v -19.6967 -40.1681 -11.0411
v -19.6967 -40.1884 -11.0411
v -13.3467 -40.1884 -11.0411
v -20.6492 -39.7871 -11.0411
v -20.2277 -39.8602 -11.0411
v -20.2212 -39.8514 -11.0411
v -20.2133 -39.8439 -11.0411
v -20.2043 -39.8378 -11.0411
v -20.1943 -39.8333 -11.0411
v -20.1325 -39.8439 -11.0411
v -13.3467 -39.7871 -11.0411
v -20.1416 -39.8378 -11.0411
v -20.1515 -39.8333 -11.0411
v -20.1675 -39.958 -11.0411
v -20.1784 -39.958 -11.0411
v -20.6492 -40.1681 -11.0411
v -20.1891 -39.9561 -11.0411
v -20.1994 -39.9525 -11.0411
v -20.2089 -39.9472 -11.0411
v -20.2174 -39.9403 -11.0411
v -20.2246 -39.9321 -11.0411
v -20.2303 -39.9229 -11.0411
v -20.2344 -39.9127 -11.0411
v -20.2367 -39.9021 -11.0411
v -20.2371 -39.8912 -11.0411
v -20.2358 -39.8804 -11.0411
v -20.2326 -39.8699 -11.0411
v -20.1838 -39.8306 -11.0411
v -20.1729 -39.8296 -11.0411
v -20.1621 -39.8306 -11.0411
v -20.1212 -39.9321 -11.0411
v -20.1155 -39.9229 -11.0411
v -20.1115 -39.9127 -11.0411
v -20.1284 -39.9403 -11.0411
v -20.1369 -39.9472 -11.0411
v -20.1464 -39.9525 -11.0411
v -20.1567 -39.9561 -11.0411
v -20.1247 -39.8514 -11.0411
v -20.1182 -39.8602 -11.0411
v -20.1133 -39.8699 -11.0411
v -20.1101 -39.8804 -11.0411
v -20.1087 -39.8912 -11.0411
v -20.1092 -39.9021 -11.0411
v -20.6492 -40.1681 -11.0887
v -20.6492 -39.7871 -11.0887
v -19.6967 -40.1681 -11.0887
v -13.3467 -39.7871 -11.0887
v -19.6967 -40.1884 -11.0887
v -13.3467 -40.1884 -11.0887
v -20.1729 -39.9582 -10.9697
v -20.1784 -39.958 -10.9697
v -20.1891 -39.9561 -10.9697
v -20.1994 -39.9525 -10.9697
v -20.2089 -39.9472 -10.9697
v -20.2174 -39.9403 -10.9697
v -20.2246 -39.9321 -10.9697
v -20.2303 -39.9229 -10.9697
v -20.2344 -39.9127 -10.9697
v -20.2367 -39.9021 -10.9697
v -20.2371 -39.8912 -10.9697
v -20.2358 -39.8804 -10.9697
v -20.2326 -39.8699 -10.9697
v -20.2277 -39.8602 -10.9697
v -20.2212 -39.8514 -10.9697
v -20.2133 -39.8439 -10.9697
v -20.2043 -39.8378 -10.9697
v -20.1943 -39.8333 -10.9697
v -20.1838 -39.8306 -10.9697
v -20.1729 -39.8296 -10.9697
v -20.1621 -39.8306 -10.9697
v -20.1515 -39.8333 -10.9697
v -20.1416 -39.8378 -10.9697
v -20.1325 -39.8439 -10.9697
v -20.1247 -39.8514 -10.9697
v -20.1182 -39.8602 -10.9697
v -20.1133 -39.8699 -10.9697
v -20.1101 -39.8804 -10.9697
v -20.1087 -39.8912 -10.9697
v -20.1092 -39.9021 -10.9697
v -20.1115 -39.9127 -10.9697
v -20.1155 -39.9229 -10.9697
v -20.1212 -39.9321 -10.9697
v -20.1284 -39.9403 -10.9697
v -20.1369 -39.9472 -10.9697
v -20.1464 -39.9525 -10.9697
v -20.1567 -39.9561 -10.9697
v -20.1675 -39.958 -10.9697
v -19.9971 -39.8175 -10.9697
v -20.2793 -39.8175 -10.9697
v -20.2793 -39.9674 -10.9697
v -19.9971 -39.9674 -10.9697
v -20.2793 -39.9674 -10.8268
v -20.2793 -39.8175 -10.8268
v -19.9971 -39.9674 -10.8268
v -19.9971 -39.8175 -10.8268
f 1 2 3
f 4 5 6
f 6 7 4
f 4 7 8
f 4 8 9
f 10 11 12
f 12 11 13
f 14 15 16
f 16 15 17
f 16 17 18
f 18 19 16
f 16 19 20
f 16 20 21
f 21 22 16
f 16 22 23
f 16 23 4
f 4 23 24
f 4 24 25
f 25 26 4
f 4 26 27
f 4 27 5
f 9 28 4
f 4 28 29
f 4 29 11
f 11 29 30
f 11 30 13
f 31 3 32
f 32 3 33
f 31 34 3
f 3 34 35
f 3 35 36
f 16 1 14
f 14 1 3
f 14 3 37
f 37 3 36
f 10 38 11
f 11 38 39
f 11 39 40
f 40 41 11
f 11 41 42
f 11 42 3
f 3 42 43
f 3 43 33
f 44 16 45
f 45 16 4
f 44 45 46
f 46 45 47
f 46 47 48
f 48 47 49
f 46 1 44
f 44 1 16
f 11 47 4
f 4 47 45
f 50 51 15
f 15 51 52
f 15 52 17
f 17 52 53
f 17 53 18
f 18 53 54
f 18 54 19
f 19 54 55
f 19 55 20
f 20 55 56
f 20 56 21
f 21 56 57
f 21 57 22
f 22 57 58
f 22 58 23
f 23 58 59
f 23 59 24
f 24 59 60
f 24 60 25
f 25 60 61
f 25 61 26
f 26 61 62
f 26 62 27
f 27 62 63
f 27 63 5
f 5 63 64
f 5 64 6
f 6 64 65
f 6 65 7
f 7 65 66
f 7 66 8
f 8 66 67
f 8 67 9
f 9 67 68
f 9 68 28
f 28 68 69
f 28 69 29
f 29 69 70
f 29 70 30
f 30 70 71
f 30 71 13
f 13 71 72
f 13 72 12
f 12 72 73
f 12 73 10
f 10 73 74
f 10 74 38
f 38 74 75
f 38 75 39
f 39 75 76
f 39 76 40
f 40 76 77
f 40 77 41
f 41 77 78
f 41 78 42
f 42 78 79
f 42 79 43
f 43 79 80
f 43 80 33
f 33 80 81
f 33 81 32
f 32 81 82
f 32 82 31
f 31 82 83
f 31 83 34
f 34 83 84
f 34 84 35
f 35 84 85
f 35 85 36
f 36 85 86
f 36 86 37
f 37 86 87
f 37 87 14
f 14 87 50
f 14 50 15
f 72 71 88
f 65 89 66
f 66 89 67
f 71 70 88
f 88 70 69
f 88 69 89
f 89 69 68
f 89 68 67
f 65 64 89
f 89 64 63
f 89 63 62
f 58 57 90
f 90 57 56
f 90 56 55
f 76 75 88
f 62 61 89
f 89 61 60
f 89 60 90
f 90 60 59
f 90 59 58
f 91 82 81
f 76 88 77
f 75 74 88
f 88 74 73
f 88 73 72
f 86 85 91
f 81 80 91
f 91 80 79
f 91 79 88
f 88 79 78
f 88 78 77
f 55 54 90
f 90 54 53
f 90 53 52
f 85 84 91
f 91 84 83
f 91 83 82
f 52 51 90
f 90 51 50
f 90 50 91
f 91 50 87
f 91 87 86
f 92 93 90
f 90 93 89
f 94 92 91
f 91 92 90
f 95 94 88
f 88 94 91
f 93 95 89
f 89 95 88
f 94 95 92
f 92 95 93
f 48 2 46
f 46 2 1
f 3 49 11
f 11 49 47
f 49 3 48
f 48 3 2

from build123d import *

# Parameters (mm, degrees)
SKETCH2_W           = 254
SKETCH2_H           = 12.7
BOSS_EXTRUDE1_DEPTH = 101.6
SKETCH3_R           = 17.140791438
BOSS_EXTRUDE2_DEPTH = 19.05
SKETCH4_W           = 75.235944222
SKETCH4_H           = 39.955088207
BOSS_EXTRUDE3_DEPTH = 38.1
SCALE2_SCALE        = 0.00375
ROTATE_ANGLE        = 90
SKETCH6_W           = 6.35
SKETCH6_H           = 0.047625
BOSS_EXTRUDE6_DEPTH = 0.40132


with BuildPart() as part:
    # Sketch2 → Boss-Extrude1 (new body)
    with BuildSketch(Plane.XY):
        with Locations((79.130769231, 14.898076923)):
            Rectangle(SKETCH2_W, SKETCH2_H)
    extrude(amount=BOSS_EXTRUDE1_DEPTH)

    # Sketch3 → Boss-Extrude2 (add)
    with BuildSketch(Plane(origin=(0, 21.248076923, 0), x_dir=(1, 0, 0), z_dir=(0, 1, 0))):
        with Locations((79.130769231, -28.483063876)):
            Circle(SKETCH3_R)
    extrude(amount=BOSS_EXTRUDE2_DEPTH)

    # Sketch4 → Boss-Extrude3 (add)
    with BuildSketch(Plane(origin=(0, 40.298076923, 0), x_dir=(1, 0, 0), z_dir=(0, 1, 0))):
        with Locations((88.38546847, -28.088530296)):
            Rectangle(SKETCH4_W, SKETCH4_H)
    extrude(amount=BOSS_EXTRUDE3_DEPTH)


with BuildPart() as part_1:
    # Scale2: scaled about (81.435728249, 26.575729378, 44.290186425)
    add(part.part.scale(SCALE2_SCALE).moved(Location((81.130344268, 26.476070393, 44.124098226))))


with BuildPart() as part_2:
    # rotate: moved
    add(part_1.part.rotate(Axis((0, 33.666927966, 26.550068274), (1, 0, 0)), ROTATE_ANGLE))


with BuildPart() as part_3:
    # Move Body 4 x: moved
    add(part_2.part.moved(Location((-101.6, 0, 0))))


with BuildPart() as part_4:
    # Move Body 2 y: moved
    add(part_3.part.moved(Location((0, -55.88, 0))))


with BuildPart() as part_5:
    # Move Body 2.1z: moved
    add(part_4.part.moved(Location((0, 0, -30.48))))

    # Sketch6 → Boss-Extrude6 (add)
    with BuildSketch(Plane(origin=(0, -39.787101985, 0), x_dir=(1, 0, 0), z_dir=(0, 1, 0))):
        with Locations((-16.521665348, 11.064921511)):
            Rectangle(SKETCH6_W, SKETCH6_H)
    extrude(amount=-BOSS_EXTRUDE6_DEPTH)


solid = part_5.part
